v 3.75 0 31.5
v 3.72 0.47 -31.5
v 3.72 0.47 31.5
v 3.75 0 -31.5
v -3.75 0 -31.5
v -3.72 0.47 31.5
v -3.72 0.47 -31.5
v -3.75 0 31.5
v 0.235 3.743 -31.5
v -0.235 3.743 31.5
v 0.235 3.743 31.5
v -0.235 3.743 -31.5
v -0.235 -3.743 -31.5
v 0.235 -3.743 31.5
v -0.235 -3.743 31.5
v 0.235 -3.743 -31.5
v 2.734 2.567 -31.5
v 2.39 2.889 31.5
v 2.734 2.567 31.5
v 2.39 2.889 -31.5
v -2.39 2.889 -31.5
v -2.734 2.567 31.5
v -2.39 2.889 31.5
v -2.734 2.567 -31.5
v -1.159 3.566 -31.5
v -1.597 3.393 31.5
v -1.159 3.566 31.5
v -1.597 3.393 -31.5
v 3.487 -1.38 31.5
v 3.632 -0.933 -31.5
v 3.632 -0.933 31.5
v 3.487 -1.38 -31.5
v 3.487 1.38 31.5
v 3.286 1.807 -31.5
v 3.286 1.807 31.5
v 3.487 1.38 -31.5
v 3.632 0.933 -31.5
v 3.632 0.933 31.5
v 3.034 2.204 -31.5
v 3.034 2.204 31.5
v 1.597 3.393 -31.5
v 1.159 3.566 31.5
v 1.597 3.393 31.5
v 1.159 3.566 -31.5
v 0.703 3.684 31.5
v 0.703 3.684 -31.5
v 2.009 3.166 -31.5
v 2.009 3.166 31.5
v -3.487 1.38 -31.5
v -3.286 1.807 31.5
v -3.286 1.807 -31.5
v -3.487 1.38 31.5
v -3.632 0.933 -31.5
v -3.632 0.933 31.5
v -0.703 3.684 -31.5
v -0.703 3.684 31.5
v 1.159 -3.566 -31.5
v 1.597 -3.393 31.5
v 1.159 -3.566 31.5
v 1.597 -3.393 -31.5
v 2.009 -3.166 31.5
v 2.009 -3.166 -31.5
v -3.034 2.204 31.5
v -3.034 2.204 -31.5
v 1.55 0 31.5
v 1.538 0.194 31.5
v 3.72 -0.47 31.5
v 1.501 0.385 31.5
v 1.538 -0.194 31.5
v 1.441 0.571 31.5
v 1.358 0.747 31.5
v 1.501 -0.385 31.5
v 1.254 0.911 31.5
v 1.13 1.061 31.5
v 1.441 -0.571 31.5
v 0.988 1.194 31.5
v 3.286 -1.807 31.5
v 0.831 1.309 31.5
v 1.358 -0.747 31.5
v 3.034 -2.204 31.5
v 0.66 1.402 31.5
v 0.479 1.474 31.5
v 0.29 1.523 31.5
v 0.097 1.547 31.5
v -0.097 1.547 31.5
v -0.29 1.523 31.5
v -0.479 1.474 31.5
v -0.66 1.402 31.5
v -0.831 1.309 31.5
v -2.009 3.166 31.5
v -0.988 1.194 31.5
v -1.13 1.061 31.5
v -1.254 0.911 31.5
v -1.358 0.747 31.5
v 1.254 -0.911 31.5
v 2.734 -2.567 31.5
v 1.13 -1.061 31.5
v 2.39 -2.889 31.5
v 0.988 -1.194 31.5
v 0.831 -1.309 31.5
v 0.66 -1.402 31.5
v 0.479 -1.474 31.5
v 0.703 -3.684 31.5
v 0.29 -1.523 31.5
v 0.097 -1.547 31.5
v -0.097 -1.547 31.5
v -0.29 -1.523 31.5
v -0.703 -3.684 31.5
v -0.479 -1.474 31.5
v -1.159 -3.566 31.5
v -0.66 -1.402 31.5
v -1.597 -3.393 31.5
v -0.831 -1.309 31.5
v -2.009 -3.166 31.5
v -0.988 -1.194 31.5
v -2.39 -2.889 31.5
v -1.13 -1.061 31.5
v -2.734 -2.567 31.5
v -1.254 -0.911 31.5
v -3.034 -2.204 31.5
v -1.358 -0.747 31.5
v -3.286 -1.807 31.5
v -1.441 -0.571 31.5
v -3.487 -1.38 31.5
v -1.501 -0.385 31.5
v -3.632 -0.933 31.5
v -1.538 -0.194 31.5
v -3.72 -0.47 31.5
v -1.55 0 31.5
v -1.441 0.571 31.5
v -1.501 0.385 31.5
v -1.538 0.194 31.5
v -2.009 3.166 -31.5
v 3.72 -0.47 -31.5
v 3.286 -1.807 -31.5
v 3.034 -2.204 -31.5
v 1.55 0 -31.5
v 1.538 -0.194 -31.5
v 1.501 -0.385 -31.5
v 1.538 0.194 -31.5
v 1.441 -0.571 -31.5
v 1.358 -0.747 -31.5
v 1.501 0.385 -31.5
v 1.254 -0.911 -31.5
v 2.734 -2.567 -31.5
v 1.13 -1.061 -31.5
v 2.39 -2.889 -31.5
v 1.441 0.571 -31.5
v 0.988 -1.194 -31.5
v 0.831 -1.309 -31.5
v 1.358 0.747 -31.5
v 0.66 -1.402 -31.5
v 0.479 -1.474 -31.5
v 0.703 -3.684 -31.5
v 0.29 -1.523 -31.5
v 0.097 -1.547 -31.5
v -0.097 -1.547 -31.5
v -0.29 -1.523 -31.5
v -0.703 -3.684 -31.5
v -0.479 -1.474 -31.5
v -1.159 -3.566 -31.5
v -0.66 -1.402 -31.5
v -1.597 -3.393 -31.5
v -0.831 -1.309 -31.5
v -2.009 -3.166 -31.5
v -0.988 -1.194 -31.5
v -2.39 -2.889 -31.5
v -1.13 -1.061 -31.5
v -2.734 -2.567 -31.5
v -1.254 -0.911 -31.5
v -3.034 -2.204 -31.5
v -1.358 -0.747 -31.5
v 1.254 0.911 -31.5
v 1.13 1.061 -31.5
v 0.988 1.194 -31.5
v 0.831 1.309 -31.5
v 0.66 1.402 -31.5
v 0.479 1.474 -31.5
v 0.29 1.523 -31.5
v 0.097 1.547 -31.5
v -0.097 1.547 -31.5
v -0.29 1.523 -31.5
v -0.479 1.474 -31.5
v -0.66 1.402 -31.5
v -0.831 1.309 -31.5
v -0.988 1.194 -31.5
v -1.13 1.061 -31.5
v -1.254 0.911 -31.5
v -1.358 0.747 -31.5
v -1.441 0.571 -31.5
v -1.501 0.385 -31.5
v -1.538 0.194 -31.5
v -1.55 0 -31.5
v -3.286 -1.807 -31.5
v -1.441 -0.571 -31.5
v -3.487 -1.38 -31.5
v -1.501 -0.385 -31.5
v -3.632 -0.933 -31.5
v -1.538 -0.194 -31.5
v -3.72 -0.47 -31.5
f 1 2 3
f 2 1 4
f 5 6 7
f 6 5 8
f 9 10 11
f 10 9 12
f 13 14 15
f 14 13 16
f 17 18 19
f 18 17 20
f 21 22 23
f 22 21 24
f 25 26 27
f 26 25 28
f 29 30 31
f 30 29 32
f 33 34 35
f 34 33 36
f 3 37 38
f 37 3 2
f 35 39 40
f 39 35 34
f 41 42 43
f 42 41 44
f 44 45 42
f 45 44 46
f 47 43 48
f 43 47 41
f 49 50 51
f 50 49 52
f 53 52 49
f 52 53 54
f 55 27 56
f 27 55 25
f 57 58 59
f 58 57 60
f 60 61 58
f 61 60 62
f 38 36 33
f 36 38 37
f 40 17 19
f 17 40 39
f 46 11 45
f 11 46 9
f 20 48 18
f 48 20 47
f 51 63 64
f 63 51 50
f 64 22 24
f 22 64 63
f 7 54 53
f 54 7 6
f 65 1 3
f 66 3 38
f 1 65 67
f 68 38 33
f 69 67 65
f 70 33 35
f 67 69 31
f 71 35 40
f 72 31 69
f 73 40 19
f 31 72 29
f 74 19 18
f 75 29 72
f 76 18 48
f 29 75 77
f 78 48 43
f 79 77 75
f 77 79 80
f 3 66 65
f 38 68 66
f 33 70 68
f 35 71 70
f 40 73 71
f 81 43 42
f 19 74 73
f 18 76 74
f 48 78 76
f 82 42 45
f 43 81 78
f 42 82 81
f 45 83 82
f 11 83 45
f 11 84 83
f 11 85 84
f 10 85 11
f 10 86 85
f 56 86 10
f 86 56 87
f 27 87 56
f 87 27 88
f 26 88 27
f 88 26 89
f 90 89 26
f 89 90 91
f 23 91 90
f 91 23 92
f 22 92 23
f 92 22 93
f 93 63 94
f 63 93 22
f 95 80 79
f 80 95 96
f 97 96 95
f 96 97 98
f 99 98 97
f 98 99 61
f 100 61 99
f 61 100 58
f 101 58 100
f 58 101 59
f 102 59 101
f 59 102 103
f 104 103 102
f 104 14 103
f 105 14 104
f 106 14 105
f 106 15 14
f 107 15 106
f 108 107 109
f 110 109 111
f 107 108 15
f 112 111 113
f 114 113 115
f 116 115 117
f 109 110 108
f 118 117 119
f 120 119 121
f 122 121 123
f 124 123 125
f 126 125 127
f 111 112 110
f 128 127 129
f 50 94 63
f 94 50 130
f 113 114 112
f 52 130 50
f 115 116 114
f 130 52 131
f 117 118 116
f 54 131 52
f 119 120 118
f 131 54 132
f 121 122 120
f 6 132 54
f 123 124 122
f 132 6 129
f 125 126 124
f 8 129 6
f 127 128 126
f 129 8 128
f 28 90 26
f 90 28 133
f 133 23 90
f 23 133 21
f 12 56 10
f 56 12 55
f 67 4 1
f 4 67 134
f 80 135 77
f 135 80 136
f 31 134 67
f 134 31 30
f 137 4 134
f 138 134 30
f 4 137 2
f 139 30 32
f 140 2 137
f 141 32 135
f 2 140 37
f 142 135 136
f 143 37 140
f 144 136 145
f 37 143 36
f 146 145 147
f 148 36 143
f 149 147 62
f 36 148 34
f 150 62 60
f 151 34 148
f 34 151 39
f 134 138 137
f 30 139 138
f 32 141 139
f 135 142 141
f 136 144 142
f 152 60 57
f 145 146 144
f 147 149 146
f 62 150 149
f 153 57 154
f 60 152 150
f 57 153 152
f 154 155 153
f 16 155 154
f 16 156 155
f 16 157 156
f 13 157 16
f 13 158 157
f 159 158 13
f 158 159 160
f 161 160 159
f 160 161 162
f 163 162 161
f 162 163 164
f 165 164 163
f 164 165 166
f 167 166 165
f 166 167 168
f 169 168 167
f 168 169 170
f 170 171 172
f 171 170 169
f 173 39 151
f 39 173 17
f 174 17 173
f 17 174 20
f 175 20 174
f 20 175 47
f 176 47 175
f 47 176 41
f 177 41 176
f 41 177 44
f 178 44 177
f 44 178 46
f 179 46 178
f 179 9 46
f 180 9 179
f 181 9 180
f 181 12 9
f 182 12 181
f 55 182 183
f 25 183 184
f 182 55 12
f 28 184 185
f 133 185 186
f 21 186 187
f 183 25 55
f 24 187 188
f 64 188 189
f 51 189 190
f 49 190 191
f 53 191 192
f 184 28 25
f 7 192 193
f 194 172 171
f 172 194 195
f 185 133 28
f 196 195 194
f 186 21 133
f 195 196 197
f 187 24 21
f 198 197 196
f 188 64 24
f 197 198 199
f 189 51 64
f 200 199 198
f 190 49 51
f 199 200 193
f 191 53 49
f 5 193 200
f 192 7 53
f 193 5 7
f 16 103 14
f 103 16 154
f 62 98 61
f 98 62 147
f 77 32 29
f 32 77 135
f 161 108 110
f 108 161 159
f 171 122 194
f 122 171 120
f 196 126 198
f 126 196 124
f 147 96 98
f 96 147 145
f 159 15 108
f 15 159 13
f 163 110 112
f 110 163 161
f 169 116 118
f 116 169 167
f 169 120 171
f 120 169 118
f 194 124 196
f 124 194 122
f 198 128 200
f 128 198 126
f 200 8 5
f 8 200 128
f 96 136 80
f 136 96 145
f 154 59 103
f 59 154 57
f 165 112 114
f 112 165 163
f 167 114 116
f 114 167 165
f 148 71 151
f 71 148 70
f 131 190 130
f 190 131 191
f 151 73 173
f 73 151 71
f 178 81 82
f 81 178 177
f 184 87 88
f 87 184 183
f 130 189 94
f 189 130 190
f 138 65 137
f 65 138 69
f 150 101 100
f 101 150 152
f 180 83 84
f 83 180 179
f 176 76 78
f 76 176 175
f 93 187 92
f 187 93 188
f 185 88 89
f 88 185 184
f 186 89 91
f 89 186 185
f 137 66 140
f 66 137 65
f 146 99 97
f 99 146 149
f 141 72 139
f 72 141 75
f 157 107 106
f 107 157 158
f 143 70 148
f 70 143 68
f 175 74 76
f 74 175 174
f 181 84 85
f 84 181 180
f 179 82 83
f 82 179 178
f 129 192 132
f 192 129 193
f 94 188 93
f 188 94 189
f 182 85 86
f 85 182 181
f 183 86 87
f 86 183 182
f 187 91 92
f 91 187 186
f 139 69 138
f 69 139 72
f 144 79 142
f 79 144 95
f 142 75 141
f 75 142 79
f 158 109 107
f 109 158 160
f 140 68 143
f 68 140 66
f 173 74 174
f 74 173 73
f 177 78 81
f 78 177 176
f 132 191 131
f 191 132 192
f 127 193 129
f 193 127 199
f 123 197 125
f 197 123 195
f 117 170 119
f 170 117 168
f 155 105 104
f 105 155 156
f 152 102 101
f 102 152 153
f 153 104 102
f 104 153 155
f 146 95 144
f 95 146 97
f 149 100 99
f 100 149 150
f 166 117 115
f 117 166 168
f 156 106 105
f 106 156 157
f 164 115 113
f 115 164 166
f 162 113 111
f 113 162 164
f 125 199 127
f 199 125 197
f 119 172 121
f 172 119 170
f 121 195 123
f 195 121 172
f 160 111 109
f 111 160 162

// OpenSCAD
$fn = 50;


difference() {
	union() {
		translate(v = [0, 0, -31.5000000000]) {
			cylinder(h = 63, r = 3.7500000000);
		}
	}
	union() {
		translate(v = [0, 0, -100.0000000000]) {
			cylinder(h = 200, r = 1.5500000000);
		}
	}
}
